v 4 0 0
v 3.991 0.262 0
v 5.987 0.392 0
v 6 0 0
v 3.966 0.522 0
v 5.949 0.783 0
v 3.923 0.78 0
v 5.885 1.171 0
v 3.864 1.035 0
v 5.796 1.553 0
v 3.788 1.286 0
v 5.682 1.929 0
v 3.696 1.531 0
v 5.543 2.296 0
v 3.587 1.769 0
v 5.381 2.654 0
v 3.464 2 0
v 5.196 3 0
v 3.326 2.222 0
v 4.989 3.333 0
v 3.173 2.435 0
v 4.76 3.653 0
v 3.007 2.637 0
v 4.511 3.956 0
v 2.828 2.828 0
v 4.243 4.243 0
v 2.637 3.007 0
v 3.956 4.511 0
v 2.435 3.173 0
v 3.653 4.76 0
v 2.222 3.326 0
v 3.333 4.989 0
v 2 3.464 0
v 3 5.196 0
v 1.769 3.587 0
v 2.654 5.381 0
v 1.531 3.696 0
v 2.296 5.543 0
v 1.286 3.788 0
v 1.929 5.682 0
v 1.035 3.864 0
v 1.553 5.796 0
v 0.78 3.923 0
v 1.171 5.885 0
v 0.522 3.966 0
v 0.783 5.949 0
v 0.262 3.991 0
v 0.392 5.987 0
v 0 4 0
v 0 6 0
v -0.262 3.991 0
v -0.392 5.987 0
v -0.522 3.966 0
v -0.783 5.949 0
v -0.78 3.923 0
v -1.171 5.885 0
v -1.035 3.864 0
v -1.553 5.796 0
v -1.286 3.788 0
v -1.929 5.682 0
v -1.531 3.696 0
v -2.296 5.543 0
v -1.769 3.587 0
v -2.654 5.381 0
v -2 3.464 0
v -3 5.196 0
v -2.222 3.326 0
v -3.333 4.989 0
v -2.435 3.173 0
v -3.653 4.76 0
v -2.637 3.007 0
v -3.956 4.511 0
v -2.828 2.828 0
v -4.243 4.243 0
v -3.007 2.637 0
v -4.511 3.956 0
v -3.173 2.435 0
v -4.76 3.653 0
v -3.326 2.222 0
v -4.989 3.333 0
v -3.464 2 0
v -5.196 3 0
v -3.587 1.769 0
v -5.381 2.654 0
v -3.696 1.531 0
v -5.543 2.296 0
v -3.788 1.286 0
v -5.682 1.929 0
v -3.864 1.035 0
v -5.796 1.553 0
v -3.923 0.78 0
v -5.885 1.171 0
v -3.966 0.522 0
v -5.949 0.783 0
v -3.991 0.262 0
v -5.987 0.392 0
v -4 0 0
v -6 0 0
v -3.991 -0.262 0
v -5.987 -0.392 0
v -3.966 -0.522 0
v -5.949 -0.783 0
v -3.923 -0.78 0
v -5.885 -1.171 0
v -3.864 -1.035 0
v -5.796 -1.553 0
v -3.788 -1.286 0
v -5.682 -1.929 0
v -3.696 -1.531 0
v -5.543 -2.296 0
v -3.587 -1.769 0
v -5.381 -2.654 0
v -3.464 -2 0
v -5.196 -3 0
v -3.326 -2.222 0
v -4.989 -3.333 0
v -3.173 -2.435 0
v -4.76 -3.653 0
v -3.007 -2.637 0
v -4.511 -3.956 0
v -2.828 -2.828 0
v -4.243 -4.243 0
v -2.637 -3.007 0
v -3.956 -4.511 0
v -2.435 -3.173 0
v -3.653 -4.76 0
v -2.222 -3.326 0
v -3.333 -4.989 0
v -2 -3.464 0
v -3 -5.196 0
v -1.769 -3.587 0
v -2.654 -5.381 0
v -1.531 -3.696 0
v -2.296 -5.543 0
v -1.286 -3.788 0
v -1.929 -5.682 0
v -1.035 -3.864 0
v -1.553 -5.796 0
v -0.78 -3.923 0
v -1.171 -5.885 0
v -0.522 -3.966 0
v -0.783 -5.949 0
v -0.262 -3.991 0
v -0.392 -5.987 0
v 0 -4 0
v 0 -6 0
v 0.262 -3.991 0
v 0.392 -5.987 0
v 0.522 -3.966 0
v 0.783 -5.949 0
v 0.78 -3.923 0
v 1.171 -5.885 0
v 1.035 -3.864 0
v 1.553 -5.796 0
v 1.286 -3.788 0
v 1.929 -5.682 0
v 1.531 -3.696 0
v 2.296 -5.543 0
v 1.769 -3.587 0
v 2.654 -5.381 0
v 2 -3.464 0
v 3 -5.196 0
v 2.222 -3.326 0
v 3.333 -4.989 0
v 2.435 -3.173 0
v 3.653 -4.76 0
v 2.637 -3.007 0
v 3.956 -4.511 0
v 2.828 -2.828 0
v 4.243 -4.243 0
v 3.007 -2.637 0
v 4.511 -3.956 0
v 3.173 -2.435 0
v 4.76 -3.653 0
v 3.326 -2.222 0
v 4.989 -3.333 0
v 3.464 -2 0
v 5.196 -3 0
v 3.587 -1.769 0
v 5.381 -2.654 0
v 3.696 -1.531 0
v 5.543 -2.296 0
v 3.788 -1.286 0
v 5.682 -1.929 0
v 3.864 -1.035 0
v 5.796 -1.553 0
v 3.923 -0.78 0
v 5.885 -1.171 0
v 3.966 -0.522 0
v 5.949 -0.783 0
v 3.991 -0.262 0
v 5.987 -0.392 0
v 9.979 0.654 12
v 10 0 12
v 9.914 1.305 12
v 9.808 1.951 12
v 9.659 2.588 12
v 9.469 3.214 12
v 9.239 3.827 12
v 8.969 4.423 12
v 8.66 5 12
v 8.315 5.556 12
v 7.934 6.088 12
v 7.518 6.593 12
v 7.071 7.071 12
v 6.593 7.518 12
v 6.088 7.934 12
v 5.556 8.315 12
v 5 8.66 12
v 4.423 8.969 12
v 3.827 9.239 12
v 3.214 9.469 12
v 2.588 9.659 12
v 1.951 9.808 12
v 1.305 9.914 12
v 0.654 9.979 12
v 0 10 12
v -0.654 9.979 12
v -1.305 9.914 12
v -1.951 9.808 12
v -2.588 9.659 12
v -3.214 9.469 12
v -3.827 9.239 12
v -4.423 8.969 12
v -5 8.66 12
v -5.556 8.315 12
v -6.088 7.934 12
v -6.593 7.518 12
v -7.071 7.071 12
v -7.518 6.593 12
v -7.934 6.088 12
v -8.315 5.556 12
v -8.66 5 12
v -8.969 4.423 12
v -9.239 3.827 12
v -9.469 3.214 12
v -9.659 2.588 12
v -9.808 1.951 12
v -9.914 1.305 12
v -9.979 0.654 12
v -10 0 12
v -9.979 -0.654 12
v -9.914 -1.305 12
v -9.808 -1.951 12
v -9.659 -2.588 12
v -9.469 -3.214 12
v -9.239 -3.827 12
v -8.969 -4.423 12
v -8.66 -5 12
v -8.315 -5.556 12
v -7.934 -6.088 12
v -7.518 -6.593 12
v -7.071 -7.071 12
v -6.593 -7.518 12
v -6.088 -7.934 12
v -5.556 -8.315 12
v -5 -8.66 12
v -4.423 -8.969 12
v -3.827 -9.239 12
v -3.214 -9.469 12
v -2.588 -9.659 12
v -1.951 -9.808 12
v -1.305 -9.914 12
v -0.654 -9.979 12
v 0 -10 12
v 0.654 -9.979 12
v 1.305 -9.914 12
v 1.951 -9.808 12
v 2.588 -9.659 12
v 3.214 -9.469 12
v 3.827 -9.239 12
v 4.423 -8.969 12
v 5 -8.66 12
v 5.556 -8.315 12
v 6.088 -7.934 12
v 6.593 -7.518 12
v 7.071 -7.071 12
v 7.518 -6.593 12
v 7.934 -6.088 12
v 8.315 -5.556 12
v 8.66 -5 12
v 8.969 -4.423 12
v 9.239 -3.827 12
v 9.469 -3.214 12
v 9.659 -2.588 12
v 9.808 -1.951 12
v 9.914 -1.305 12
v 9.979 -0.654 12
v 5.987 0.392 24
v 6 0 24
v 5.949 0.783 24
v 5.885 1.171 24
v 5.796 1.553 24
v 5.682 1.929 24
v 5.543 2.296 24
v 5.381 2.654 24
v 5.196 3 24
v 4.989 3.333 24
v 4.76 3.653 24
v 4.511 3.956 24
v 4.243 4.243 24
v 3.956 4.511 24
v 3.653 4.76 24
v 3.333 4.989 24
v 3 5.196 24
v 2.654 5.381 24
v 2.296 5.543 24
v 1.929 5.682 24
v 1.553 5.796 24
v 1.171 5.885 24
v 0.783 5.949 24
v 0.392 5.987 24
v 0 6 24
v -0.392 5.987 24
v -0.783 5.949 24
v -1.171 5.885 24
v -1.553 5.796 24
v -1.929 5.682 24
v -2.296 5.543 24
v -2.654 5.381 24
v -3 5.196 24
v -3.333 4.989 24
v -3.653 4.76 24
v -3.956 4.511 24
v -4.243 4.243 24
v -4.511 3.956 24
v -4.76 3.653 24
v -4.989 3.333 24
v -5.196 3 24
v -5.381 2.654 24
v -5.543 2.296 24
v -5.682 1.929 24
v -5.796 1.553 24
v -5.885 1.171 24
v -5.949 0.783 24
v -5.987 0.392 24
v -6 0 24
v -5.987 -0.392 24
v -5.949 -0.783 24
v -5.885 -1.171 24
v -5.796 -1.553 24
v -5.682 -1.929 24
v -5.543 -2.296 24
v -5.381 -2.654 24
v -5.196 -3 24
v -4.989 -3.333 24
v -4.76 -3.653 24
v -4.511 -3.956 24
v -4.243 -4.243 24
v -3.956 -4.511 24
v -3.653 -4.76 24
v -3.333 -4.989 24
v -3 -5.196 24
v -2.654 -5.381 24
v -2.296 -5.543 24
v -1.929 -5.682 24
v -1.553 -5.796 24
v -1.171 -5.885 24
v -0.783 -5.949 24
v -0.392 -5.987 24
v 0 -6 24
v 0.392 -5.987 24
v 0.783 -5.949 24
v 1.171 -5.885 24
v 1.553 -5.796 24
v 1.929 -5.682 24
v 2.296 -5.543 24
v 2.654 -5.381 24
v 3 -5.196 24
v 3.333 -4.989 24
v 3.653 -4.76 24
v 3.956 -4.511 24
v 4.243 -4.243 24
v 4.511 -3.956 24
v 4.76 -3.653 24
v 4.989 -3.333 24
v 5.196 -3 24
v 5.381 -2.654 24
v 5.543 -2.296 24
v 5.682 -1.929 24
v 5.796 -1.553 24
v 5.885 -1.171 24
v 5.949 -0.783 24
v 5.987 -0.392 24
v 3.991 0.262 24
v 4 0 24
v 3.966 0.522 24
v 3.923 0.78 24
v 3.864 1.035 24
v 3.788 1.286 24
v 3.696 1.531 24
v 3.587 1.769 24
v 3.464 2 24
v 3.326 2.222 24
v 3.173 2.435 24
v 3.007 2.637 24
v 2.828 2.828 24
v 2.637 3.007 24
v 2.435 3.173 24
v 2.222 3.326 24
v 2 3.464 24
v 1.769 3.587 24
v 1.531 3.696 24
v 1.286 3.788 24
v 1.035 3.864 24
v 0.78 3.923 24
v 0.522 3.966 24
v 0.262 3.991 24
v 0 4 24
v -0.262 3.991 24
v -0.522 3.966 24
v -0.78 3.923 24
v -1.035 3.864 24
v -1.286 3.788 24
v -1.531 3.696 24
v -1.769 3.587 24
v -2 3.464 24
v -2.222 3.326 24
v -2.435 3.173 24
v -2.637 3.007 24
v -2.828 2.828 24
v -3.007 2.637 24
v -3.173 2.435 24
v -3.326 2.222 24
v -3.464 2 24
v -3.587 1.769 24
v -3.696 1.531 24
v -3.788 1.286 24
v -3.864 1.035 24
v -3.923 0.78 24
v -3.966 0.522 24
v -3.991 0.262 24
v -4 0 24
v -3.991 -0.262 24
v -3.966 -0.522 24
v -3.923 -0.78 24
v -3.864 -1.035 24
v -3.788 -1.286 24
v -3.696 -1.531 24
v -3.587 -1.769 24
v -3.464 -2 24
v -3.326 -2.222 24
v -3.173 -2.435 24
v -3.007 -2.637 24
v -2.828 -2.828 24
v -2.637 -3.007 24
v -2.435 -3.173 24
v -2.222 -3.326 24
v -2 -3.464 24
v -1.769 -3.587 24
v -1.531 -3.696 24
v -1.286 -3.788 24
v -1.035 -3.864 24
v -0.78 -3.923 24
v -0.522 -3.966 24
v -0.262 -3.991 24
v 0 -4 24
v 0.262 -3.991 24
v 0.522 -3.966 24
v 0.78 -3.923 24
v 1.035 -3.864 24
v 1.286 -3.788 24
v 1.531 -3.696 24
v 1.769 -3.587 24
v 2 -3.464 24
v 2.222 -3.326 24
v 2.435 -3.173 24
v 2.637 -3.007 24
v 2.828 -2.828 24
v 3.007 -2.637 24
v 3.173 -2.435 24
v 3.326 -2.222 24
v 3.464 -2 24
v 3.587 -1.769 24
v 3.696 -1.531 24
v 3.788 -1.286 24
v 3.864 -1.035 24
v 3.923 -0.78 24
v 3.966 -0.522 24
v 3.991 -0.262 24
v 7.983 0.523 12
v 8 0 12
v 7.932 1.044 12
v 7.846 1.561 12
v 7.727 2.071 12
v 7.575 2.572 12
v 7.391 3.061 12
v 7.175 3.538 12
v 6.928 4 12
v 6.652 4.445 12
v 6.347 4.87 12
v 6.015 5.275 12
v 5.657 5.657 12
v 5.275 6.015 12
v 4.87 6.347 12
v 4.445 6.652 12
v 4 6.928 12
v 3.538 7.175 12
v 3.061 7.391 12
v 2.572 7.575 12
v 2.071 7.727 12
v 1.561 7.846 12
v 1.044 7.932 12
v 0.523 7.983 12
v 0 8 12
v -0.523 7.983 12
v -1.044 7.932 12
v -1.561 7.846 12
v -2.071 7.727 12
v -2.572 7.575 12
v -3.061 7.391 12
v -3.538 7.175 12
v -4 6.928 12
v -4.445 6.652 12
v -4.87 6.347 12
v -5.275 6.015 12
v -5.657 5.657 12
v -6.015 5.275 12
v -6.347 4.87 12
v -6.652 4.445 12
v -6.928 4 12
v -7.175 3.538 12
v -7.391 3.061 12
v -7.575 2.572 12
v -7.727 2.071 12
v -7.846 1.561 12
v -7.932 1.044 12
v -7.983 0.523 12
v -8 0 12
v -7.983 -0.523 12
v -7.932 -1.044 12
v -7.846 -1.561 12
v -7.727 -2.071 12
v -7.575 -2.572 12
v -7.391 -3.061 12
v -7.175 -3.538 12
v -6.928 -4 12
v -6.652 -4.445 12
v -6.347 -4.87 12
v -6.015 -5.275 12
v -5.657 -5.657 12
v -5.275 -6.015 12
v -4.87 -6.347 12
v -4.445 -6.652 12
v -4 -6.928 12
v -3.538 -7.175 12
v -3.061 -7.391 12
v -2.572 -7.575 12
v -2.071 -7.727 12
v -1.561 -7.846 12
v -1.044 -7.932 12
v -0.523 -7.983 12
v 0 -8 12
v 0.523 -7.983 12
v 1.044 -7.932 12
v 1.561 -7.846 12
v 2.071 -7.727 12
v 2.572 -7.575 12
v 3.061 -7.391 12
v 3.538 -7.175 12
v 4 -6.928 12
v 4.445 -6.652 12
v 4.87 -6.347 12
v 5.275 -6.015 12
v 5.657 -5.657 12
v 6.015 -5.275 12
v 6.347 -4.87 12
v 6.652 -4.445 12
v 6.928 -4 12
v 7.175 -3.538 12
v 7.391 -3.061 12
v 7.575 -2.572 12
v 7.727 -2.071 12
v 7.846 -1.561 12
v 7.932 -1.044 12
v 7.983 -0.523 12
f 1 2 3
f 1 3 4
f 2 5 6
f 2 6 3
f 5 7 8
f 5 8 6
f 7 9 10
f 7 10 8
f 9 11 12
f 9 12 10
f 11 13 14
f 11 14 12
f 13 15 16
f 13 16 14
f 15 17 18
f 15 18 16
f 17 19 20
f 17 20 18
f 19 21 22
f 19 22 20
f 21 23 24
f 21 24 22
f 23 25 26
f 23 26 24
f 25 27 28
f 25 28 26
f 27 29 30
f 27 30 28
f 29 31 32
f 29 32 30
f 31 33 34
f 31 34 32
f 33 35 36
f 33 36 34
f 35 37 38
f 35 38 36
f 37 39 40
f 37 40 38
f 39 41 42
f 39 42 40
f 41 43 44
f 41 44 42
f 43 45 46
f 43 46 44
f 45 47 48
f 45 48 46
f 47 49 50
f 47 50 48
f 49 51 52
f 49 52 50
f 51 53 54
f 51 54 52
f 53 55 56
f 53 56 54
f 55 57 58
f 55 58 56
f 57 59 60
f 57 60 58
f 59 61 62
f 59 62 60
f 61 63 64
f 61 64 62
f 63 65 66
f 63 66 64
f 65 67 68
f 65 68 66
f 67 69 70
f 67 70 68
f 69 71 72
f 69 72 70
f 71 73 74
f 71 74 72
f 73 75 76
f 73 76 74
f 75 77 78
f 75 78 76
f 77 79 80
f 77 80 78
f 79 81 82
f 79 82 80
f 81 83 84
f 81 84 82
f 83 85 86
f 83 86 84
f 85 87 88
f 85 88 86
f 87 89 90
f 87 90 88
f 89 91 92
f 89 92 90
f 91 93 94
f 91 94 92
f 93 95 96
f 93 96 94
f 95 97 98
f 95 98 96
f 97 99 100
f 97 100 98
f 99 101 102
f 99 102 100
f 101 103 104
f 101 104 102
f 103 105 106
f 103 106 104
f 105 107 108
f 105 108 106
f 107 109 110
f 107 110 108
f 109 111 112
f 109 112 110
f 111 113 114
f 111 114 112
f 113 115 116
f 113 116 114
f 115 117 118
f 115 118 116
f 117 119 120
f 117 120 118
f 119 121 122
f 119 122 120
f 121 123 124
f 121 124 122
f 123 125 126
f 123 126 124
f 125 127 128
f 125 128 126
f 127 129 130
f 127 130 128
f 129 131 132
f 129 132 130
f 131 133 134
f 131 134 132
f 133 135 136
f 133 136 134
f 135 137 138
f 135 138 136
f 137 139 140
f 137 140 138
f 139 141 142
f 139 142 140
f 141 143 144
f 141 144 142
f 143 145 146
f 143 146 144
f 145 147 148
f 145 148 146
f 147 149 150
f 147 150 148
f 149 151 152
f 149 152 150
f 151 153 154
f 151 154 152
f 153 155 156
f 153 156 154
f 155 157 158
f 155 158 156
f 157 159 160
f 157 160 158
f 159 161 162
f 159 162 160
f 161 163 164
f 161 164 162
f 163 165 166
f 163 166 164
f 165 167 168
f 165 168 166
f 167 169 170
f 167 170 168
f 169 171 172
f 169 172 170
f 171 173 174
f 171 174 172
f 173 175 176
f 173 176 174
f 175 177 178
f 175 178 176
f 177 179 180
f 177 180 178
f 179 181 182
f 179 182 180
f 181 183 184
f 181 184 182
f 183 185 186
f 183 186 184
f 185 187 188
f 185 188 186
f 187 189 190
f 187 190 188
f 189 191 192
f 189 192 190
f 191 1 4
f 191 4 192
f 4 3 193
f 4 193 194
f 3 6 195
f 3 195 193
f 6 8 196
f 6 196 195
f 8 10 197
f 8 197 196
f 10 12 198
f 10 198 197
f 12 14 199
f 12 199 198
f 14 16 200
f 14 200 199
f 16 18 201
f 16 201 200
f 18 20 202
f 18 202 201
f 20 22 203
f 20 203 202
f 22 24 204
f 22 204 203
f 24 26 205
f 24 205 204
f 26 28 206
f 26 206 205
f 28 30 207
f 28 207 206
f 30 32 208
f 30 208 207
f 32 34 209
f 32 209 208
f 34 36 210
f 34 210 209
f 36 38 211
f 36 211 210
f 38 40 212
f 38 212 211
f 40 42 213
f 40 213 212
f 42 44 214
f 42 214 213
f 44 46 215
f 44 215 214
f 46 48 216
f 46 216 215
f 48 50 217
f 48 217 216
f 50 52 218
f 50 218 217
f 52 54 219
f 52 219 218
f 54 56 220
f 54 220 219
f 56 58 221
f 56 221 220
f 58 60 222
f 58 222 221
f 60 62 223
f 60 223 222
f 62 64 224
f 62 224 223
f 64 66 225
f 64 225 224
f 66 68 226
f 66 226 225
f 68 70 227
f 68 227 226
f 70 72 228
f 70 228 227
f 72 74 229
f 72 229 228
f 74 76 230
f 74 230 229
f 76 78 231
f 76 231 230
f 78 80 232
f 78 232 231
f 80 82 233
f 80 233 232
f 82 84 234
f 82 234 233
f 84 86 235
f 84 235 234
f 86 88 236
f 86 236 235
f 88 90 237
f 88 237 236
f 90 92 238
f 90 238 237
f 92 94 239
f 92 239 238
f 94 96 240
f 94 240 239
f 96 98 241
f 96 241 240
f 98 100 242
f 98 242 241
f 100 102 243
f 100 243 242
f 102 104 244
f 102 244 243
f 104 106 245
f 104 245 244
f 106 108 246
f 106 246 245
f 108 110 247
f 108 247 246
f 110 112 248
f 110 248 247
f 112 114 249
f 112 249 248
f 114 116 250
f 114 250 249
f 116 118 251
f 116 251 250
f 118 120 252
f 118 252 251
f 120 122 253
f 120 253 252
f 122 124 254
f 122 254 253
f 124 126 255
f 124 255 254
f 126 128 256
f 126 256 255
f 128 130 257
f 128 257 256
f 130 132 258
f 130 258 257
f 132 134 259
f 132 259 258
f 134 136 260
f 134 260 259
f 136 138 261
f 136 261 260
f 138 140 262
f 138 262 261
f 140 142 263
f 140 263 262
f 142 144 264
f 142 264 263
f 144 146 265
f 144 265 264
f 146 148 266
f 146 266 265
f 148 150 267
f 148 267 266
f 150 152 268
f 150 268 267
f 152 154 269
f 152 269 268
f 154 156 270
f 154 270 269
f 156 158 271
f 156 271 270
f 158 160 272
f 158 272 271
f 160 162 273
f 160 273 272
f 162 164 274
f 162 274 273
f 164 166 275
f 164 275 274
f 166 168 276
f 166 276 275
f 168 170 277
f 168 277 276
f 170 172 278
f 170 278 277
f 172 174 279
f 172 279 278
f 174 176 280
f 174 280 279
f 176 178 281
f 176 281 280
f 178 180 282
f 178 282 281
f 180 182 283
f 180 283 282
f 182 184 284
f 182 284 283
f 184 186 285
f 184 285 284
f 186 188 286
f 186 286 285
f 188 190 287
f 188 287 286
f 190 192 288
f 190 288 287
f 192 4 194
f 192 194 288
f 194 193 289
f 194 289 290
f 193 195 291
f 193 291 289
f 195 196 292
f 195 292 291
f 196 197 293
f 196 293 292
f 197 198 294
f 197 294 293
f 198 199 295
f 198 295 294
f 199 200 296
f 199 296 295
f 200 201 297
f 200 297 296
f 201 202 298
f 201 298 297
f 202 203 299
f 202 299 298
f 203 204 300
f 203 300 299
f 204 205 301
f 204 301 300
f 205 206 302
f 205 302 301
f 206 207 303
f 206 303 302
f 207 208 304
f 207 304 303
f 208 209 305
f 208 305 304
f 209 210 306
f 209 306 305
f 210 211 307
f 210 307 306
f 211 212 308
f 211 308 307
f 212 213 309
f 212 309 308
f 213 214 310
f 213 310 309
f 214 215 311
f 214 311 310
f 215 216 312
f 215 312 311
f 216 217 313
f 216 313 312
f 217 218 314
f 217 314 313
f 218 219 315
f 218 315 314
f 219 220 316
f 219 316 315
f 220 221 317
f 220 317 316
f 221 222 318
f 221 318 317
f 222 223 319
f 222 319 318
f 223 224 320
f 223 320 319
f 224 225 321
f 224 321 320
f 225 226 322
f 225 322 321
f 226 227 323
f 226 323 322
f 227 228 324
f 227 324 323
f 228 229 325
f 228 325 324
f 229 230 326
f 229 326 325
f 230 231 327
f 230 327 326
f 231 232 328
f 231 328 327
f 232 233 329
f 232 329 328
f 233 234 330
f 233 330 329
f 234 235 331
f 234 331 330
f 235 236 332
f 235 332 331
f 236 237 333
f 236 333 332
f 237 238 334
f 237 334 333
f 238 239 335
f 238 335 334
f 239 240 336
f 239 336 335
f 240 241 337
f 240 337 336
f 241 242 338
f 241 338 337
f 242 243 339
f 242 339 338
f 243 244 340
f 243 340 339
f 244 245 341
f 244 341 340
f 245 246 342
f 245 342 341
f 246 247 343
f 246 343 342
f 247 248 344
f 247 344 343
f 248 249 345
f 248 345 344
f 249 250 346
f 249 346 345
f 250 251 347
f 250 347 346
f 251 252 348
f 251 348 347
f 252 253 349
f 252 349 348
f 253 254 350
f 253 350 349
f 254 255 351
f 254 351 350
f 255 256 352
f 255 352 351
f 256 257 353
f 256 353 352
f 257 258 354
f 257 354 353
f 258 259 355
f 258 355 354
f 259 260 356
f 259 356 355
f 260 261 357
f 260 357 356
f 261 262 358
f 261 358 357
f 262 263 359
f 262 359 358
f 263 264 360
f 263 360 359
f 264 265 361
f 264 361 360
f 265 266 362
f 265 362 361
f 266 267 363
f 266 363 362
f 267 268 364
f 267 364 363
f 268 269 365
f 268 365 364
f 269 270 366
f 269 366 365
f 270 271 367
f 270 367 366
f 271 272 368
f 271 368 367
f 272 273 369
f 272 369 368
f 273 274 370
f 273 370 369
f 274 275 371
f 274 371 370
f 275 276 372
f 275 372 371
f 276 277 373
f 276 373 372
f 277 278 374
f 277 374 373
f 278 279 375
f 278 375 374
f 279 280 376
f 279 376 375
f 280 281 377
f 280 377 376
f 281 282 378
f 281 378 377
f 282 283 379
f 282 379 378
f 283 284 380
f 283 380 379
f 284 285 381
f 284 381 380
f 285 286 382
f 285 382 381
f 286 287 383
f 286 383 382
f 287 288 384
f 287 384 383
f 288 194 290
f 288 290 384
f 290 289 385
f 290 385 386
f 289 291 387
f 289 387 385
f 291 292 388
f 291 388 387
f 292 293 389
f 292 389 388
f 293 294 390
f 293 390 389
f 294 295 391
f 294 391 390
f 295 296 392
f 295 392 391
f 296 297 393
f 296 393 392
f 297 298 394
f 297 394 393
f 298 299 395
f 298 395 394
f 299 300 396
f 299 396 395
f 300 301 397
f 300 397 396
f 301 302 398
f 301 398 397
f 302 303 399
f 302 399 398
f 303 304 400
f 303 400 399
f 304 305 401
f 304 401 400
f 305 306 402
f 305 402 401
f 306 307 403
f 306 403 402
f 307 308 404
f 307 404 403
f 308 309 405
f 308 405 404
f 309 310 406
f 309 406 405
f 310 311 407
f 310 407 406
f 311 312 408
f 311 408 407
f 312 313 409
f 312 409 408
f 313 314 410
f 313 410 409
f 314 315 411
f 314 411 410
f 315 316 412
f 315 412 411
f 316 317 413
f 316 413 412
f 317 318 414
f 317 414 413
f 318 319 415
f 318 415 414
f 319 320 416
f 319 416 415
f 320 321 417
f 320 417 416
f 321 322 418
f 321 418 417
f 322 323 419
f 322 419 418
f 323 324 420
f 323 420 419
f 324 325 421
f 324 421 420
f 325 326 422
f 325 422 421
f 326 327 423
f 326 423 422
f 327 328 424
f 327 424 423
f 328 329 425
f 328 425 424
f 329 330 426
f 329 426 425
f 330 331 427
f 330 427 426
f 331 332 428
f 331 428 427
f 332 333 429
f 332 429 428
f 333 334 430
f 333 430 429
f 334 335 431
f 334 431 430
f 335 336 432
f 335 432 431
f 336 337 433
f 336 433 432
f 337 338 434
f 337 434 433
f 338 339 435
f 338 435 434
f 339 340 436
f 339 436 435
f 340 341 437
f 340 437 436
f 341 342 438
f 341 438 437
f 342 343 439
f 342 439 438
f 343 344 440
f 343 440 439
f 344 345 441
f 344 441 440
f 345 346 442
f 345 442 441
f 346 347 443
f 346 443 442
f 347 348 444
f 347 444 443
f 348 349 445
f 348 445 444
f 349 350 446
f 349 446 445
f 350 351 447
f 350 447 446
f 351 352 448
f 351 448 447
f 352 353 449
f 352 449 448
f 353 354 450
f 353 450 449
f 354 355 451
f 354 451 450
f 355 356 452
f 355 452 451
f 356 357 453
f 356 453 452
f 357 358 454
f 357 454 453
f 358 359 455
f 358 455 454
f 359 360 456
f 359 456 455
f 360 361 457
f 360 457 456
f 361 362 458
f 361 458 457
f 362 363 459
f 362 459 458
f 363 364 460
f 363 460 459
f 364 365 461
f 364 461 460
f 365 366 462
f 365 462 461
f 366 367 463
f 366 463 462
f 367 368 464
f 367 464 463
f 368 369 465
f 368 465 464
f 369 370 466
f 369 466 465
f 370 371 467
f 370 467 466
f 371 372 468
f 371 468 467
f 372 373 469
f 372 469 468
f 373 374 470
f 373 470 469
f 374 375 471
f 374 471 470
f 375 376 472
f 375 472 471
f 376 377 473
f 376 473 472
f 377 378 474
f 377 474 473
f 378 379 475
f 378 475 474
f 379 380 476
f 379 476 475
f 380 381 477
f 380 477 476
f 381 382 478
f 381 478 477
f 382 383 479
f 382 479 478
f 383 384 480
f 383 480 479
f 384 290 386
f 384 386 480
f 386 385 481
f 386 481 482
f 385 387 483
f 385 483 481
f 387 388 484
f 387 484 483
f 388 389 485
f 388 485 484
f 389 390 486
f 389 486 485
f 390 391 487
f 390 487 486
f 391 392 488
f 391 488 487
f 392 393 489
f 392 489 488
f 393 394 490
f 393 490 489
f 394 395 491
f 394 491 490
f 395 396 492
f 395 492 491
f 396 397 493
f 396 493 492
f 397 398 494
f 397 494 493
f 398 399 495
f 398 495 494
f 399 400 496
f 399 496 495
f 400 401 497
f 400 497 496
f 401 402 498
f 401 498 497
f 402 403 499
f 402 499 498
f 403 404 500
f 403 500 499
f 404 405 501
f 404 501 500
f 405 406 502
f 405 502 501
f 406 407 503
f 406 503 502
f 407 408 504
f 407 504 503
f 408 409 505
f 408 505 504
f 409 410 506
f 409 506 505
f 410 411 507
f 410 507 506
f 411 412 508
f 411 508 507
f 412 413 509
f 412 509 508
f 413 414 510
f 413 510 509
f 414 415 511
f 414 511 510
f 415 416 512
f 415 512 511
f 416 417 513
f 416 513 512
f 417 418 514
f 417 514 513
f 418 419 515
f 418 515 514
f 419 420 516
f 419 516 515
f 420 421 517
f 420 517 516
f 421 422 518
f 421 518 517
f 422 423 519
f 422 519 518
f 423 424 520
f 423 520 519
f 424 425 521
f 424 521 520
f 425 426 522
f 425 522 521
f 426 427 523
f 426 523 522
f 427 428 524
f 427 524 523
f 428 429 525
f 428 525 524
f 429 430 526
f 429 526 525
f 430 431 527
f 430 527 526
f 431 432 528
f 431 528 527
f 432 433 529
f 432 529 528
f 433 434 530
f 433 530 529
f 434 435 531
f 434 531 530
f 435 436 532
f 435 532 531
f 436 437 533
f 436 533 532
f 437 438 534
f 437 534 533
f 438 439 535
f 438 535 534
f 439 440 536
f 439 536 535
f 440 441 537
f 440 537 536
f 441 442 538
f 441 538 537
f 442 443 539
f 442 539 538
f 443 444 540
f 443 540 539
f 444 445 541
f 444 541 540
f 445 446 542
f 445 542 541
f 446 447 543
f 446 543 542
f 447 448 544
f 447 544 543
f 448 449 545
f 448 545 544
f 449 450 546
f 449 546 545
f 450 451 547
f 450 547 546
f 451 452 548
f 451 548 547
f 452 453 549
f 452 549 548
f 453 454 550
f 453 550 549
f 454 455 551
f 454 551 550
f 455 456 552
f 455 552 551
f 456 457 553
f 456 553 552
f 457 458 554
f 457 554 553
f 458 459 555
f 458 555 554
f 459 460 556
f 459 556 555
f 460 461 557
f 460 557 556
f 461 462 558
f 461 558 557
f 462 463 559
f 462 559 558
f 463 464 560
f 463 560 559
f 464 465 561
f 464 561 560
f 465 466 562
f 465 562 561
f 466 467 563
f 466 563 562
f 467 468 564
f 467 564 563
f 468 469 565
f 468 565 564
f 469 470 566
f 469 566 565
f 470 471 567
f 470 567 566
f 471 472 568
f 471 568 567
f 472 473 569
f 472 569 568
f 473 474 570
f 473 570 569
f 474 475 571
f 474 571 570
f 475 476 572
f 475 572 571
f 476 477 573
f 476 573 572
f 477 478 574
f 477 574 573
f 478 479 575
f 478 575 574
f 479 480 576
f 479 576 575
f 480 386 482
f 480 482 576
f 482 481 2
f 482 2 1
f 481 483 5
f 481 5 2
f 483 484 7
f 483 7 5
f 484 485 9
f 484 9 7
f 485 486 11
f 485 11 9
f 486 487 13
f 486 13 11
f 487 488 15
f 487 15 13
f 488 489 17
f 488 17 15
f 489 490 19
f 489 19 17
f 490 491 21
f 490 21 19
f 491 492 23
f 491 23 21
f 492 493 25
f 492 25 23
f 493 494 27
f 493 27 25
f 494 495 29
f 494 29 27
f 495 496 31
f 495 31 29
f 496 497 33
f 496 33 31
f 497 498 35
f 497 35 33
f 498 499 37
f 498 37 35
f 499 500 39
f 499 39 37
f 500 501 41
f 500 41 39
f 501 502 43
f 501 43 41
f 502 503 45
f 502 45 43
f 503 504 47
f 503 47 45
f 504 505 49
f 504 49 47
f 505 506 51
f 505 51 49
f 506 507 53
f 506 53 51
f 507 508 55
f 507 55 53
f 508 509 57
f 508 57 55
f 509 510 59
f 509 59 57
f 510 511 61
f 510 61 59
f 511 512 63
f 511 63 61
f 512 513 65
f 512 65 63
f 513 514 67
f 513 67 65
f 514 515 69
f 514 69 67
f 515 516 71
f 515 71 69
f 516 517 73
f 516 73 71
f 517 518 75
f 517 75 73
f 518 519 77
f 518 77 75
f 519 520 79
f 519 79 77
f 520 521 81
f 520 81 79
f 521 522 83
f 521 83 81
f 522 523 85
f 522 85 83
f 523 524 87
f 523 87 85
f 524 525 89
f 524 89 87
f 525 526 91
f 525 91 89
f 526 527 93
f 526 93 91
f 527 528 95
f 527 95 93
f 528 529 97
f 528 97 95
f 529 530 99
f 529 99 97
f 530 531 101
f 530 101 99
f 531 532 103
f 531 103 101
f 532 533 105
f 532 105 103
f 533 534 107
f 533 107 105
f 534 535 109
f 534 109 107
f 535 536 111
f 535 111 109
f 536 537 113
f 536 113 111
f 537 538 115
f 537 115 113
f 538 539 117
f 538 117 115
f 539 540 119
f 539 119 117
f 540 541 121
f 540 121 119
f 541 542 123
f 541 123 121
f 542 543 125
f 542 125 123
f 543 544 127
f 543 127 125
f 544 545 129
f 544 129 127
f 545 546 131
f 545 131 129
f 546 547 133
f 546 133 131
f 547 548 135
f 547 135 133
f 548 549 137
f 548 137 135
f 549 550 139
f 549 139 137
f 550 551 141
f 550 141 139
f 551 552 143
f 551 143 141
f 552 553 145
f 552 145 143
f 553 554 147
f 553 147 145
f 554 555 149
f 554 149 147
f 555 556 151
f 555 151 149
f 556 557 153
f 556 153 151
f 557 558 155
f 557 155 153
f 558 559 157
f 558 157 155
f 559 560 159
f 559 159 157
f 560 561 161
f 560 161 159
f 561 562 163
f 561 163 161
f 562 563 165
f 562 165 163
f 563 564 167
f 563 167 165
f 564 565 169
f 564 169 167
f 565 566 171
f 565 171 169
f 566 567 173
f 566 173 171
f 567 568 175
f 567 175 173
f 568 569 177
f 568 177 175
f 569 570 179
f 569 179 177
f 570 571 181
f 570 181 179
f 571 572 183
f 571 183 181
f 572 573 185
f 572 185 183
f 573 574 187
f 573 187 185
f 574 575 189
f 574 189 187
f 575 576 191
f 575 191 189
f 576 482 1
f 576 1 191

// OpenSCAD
// Original MechIntel educational model. CC0-1.0. Units: mm.
// Not a standardized or load-rated component.
$fn=96;
// Section points: [radius, height], mm. Edit to change the profile.
section=[[4, 0], [6, 0], [10, 12], [6, 24], [4, 24], [8, 12]];
rotate_extrude($fn=96) polygon(points=section);
